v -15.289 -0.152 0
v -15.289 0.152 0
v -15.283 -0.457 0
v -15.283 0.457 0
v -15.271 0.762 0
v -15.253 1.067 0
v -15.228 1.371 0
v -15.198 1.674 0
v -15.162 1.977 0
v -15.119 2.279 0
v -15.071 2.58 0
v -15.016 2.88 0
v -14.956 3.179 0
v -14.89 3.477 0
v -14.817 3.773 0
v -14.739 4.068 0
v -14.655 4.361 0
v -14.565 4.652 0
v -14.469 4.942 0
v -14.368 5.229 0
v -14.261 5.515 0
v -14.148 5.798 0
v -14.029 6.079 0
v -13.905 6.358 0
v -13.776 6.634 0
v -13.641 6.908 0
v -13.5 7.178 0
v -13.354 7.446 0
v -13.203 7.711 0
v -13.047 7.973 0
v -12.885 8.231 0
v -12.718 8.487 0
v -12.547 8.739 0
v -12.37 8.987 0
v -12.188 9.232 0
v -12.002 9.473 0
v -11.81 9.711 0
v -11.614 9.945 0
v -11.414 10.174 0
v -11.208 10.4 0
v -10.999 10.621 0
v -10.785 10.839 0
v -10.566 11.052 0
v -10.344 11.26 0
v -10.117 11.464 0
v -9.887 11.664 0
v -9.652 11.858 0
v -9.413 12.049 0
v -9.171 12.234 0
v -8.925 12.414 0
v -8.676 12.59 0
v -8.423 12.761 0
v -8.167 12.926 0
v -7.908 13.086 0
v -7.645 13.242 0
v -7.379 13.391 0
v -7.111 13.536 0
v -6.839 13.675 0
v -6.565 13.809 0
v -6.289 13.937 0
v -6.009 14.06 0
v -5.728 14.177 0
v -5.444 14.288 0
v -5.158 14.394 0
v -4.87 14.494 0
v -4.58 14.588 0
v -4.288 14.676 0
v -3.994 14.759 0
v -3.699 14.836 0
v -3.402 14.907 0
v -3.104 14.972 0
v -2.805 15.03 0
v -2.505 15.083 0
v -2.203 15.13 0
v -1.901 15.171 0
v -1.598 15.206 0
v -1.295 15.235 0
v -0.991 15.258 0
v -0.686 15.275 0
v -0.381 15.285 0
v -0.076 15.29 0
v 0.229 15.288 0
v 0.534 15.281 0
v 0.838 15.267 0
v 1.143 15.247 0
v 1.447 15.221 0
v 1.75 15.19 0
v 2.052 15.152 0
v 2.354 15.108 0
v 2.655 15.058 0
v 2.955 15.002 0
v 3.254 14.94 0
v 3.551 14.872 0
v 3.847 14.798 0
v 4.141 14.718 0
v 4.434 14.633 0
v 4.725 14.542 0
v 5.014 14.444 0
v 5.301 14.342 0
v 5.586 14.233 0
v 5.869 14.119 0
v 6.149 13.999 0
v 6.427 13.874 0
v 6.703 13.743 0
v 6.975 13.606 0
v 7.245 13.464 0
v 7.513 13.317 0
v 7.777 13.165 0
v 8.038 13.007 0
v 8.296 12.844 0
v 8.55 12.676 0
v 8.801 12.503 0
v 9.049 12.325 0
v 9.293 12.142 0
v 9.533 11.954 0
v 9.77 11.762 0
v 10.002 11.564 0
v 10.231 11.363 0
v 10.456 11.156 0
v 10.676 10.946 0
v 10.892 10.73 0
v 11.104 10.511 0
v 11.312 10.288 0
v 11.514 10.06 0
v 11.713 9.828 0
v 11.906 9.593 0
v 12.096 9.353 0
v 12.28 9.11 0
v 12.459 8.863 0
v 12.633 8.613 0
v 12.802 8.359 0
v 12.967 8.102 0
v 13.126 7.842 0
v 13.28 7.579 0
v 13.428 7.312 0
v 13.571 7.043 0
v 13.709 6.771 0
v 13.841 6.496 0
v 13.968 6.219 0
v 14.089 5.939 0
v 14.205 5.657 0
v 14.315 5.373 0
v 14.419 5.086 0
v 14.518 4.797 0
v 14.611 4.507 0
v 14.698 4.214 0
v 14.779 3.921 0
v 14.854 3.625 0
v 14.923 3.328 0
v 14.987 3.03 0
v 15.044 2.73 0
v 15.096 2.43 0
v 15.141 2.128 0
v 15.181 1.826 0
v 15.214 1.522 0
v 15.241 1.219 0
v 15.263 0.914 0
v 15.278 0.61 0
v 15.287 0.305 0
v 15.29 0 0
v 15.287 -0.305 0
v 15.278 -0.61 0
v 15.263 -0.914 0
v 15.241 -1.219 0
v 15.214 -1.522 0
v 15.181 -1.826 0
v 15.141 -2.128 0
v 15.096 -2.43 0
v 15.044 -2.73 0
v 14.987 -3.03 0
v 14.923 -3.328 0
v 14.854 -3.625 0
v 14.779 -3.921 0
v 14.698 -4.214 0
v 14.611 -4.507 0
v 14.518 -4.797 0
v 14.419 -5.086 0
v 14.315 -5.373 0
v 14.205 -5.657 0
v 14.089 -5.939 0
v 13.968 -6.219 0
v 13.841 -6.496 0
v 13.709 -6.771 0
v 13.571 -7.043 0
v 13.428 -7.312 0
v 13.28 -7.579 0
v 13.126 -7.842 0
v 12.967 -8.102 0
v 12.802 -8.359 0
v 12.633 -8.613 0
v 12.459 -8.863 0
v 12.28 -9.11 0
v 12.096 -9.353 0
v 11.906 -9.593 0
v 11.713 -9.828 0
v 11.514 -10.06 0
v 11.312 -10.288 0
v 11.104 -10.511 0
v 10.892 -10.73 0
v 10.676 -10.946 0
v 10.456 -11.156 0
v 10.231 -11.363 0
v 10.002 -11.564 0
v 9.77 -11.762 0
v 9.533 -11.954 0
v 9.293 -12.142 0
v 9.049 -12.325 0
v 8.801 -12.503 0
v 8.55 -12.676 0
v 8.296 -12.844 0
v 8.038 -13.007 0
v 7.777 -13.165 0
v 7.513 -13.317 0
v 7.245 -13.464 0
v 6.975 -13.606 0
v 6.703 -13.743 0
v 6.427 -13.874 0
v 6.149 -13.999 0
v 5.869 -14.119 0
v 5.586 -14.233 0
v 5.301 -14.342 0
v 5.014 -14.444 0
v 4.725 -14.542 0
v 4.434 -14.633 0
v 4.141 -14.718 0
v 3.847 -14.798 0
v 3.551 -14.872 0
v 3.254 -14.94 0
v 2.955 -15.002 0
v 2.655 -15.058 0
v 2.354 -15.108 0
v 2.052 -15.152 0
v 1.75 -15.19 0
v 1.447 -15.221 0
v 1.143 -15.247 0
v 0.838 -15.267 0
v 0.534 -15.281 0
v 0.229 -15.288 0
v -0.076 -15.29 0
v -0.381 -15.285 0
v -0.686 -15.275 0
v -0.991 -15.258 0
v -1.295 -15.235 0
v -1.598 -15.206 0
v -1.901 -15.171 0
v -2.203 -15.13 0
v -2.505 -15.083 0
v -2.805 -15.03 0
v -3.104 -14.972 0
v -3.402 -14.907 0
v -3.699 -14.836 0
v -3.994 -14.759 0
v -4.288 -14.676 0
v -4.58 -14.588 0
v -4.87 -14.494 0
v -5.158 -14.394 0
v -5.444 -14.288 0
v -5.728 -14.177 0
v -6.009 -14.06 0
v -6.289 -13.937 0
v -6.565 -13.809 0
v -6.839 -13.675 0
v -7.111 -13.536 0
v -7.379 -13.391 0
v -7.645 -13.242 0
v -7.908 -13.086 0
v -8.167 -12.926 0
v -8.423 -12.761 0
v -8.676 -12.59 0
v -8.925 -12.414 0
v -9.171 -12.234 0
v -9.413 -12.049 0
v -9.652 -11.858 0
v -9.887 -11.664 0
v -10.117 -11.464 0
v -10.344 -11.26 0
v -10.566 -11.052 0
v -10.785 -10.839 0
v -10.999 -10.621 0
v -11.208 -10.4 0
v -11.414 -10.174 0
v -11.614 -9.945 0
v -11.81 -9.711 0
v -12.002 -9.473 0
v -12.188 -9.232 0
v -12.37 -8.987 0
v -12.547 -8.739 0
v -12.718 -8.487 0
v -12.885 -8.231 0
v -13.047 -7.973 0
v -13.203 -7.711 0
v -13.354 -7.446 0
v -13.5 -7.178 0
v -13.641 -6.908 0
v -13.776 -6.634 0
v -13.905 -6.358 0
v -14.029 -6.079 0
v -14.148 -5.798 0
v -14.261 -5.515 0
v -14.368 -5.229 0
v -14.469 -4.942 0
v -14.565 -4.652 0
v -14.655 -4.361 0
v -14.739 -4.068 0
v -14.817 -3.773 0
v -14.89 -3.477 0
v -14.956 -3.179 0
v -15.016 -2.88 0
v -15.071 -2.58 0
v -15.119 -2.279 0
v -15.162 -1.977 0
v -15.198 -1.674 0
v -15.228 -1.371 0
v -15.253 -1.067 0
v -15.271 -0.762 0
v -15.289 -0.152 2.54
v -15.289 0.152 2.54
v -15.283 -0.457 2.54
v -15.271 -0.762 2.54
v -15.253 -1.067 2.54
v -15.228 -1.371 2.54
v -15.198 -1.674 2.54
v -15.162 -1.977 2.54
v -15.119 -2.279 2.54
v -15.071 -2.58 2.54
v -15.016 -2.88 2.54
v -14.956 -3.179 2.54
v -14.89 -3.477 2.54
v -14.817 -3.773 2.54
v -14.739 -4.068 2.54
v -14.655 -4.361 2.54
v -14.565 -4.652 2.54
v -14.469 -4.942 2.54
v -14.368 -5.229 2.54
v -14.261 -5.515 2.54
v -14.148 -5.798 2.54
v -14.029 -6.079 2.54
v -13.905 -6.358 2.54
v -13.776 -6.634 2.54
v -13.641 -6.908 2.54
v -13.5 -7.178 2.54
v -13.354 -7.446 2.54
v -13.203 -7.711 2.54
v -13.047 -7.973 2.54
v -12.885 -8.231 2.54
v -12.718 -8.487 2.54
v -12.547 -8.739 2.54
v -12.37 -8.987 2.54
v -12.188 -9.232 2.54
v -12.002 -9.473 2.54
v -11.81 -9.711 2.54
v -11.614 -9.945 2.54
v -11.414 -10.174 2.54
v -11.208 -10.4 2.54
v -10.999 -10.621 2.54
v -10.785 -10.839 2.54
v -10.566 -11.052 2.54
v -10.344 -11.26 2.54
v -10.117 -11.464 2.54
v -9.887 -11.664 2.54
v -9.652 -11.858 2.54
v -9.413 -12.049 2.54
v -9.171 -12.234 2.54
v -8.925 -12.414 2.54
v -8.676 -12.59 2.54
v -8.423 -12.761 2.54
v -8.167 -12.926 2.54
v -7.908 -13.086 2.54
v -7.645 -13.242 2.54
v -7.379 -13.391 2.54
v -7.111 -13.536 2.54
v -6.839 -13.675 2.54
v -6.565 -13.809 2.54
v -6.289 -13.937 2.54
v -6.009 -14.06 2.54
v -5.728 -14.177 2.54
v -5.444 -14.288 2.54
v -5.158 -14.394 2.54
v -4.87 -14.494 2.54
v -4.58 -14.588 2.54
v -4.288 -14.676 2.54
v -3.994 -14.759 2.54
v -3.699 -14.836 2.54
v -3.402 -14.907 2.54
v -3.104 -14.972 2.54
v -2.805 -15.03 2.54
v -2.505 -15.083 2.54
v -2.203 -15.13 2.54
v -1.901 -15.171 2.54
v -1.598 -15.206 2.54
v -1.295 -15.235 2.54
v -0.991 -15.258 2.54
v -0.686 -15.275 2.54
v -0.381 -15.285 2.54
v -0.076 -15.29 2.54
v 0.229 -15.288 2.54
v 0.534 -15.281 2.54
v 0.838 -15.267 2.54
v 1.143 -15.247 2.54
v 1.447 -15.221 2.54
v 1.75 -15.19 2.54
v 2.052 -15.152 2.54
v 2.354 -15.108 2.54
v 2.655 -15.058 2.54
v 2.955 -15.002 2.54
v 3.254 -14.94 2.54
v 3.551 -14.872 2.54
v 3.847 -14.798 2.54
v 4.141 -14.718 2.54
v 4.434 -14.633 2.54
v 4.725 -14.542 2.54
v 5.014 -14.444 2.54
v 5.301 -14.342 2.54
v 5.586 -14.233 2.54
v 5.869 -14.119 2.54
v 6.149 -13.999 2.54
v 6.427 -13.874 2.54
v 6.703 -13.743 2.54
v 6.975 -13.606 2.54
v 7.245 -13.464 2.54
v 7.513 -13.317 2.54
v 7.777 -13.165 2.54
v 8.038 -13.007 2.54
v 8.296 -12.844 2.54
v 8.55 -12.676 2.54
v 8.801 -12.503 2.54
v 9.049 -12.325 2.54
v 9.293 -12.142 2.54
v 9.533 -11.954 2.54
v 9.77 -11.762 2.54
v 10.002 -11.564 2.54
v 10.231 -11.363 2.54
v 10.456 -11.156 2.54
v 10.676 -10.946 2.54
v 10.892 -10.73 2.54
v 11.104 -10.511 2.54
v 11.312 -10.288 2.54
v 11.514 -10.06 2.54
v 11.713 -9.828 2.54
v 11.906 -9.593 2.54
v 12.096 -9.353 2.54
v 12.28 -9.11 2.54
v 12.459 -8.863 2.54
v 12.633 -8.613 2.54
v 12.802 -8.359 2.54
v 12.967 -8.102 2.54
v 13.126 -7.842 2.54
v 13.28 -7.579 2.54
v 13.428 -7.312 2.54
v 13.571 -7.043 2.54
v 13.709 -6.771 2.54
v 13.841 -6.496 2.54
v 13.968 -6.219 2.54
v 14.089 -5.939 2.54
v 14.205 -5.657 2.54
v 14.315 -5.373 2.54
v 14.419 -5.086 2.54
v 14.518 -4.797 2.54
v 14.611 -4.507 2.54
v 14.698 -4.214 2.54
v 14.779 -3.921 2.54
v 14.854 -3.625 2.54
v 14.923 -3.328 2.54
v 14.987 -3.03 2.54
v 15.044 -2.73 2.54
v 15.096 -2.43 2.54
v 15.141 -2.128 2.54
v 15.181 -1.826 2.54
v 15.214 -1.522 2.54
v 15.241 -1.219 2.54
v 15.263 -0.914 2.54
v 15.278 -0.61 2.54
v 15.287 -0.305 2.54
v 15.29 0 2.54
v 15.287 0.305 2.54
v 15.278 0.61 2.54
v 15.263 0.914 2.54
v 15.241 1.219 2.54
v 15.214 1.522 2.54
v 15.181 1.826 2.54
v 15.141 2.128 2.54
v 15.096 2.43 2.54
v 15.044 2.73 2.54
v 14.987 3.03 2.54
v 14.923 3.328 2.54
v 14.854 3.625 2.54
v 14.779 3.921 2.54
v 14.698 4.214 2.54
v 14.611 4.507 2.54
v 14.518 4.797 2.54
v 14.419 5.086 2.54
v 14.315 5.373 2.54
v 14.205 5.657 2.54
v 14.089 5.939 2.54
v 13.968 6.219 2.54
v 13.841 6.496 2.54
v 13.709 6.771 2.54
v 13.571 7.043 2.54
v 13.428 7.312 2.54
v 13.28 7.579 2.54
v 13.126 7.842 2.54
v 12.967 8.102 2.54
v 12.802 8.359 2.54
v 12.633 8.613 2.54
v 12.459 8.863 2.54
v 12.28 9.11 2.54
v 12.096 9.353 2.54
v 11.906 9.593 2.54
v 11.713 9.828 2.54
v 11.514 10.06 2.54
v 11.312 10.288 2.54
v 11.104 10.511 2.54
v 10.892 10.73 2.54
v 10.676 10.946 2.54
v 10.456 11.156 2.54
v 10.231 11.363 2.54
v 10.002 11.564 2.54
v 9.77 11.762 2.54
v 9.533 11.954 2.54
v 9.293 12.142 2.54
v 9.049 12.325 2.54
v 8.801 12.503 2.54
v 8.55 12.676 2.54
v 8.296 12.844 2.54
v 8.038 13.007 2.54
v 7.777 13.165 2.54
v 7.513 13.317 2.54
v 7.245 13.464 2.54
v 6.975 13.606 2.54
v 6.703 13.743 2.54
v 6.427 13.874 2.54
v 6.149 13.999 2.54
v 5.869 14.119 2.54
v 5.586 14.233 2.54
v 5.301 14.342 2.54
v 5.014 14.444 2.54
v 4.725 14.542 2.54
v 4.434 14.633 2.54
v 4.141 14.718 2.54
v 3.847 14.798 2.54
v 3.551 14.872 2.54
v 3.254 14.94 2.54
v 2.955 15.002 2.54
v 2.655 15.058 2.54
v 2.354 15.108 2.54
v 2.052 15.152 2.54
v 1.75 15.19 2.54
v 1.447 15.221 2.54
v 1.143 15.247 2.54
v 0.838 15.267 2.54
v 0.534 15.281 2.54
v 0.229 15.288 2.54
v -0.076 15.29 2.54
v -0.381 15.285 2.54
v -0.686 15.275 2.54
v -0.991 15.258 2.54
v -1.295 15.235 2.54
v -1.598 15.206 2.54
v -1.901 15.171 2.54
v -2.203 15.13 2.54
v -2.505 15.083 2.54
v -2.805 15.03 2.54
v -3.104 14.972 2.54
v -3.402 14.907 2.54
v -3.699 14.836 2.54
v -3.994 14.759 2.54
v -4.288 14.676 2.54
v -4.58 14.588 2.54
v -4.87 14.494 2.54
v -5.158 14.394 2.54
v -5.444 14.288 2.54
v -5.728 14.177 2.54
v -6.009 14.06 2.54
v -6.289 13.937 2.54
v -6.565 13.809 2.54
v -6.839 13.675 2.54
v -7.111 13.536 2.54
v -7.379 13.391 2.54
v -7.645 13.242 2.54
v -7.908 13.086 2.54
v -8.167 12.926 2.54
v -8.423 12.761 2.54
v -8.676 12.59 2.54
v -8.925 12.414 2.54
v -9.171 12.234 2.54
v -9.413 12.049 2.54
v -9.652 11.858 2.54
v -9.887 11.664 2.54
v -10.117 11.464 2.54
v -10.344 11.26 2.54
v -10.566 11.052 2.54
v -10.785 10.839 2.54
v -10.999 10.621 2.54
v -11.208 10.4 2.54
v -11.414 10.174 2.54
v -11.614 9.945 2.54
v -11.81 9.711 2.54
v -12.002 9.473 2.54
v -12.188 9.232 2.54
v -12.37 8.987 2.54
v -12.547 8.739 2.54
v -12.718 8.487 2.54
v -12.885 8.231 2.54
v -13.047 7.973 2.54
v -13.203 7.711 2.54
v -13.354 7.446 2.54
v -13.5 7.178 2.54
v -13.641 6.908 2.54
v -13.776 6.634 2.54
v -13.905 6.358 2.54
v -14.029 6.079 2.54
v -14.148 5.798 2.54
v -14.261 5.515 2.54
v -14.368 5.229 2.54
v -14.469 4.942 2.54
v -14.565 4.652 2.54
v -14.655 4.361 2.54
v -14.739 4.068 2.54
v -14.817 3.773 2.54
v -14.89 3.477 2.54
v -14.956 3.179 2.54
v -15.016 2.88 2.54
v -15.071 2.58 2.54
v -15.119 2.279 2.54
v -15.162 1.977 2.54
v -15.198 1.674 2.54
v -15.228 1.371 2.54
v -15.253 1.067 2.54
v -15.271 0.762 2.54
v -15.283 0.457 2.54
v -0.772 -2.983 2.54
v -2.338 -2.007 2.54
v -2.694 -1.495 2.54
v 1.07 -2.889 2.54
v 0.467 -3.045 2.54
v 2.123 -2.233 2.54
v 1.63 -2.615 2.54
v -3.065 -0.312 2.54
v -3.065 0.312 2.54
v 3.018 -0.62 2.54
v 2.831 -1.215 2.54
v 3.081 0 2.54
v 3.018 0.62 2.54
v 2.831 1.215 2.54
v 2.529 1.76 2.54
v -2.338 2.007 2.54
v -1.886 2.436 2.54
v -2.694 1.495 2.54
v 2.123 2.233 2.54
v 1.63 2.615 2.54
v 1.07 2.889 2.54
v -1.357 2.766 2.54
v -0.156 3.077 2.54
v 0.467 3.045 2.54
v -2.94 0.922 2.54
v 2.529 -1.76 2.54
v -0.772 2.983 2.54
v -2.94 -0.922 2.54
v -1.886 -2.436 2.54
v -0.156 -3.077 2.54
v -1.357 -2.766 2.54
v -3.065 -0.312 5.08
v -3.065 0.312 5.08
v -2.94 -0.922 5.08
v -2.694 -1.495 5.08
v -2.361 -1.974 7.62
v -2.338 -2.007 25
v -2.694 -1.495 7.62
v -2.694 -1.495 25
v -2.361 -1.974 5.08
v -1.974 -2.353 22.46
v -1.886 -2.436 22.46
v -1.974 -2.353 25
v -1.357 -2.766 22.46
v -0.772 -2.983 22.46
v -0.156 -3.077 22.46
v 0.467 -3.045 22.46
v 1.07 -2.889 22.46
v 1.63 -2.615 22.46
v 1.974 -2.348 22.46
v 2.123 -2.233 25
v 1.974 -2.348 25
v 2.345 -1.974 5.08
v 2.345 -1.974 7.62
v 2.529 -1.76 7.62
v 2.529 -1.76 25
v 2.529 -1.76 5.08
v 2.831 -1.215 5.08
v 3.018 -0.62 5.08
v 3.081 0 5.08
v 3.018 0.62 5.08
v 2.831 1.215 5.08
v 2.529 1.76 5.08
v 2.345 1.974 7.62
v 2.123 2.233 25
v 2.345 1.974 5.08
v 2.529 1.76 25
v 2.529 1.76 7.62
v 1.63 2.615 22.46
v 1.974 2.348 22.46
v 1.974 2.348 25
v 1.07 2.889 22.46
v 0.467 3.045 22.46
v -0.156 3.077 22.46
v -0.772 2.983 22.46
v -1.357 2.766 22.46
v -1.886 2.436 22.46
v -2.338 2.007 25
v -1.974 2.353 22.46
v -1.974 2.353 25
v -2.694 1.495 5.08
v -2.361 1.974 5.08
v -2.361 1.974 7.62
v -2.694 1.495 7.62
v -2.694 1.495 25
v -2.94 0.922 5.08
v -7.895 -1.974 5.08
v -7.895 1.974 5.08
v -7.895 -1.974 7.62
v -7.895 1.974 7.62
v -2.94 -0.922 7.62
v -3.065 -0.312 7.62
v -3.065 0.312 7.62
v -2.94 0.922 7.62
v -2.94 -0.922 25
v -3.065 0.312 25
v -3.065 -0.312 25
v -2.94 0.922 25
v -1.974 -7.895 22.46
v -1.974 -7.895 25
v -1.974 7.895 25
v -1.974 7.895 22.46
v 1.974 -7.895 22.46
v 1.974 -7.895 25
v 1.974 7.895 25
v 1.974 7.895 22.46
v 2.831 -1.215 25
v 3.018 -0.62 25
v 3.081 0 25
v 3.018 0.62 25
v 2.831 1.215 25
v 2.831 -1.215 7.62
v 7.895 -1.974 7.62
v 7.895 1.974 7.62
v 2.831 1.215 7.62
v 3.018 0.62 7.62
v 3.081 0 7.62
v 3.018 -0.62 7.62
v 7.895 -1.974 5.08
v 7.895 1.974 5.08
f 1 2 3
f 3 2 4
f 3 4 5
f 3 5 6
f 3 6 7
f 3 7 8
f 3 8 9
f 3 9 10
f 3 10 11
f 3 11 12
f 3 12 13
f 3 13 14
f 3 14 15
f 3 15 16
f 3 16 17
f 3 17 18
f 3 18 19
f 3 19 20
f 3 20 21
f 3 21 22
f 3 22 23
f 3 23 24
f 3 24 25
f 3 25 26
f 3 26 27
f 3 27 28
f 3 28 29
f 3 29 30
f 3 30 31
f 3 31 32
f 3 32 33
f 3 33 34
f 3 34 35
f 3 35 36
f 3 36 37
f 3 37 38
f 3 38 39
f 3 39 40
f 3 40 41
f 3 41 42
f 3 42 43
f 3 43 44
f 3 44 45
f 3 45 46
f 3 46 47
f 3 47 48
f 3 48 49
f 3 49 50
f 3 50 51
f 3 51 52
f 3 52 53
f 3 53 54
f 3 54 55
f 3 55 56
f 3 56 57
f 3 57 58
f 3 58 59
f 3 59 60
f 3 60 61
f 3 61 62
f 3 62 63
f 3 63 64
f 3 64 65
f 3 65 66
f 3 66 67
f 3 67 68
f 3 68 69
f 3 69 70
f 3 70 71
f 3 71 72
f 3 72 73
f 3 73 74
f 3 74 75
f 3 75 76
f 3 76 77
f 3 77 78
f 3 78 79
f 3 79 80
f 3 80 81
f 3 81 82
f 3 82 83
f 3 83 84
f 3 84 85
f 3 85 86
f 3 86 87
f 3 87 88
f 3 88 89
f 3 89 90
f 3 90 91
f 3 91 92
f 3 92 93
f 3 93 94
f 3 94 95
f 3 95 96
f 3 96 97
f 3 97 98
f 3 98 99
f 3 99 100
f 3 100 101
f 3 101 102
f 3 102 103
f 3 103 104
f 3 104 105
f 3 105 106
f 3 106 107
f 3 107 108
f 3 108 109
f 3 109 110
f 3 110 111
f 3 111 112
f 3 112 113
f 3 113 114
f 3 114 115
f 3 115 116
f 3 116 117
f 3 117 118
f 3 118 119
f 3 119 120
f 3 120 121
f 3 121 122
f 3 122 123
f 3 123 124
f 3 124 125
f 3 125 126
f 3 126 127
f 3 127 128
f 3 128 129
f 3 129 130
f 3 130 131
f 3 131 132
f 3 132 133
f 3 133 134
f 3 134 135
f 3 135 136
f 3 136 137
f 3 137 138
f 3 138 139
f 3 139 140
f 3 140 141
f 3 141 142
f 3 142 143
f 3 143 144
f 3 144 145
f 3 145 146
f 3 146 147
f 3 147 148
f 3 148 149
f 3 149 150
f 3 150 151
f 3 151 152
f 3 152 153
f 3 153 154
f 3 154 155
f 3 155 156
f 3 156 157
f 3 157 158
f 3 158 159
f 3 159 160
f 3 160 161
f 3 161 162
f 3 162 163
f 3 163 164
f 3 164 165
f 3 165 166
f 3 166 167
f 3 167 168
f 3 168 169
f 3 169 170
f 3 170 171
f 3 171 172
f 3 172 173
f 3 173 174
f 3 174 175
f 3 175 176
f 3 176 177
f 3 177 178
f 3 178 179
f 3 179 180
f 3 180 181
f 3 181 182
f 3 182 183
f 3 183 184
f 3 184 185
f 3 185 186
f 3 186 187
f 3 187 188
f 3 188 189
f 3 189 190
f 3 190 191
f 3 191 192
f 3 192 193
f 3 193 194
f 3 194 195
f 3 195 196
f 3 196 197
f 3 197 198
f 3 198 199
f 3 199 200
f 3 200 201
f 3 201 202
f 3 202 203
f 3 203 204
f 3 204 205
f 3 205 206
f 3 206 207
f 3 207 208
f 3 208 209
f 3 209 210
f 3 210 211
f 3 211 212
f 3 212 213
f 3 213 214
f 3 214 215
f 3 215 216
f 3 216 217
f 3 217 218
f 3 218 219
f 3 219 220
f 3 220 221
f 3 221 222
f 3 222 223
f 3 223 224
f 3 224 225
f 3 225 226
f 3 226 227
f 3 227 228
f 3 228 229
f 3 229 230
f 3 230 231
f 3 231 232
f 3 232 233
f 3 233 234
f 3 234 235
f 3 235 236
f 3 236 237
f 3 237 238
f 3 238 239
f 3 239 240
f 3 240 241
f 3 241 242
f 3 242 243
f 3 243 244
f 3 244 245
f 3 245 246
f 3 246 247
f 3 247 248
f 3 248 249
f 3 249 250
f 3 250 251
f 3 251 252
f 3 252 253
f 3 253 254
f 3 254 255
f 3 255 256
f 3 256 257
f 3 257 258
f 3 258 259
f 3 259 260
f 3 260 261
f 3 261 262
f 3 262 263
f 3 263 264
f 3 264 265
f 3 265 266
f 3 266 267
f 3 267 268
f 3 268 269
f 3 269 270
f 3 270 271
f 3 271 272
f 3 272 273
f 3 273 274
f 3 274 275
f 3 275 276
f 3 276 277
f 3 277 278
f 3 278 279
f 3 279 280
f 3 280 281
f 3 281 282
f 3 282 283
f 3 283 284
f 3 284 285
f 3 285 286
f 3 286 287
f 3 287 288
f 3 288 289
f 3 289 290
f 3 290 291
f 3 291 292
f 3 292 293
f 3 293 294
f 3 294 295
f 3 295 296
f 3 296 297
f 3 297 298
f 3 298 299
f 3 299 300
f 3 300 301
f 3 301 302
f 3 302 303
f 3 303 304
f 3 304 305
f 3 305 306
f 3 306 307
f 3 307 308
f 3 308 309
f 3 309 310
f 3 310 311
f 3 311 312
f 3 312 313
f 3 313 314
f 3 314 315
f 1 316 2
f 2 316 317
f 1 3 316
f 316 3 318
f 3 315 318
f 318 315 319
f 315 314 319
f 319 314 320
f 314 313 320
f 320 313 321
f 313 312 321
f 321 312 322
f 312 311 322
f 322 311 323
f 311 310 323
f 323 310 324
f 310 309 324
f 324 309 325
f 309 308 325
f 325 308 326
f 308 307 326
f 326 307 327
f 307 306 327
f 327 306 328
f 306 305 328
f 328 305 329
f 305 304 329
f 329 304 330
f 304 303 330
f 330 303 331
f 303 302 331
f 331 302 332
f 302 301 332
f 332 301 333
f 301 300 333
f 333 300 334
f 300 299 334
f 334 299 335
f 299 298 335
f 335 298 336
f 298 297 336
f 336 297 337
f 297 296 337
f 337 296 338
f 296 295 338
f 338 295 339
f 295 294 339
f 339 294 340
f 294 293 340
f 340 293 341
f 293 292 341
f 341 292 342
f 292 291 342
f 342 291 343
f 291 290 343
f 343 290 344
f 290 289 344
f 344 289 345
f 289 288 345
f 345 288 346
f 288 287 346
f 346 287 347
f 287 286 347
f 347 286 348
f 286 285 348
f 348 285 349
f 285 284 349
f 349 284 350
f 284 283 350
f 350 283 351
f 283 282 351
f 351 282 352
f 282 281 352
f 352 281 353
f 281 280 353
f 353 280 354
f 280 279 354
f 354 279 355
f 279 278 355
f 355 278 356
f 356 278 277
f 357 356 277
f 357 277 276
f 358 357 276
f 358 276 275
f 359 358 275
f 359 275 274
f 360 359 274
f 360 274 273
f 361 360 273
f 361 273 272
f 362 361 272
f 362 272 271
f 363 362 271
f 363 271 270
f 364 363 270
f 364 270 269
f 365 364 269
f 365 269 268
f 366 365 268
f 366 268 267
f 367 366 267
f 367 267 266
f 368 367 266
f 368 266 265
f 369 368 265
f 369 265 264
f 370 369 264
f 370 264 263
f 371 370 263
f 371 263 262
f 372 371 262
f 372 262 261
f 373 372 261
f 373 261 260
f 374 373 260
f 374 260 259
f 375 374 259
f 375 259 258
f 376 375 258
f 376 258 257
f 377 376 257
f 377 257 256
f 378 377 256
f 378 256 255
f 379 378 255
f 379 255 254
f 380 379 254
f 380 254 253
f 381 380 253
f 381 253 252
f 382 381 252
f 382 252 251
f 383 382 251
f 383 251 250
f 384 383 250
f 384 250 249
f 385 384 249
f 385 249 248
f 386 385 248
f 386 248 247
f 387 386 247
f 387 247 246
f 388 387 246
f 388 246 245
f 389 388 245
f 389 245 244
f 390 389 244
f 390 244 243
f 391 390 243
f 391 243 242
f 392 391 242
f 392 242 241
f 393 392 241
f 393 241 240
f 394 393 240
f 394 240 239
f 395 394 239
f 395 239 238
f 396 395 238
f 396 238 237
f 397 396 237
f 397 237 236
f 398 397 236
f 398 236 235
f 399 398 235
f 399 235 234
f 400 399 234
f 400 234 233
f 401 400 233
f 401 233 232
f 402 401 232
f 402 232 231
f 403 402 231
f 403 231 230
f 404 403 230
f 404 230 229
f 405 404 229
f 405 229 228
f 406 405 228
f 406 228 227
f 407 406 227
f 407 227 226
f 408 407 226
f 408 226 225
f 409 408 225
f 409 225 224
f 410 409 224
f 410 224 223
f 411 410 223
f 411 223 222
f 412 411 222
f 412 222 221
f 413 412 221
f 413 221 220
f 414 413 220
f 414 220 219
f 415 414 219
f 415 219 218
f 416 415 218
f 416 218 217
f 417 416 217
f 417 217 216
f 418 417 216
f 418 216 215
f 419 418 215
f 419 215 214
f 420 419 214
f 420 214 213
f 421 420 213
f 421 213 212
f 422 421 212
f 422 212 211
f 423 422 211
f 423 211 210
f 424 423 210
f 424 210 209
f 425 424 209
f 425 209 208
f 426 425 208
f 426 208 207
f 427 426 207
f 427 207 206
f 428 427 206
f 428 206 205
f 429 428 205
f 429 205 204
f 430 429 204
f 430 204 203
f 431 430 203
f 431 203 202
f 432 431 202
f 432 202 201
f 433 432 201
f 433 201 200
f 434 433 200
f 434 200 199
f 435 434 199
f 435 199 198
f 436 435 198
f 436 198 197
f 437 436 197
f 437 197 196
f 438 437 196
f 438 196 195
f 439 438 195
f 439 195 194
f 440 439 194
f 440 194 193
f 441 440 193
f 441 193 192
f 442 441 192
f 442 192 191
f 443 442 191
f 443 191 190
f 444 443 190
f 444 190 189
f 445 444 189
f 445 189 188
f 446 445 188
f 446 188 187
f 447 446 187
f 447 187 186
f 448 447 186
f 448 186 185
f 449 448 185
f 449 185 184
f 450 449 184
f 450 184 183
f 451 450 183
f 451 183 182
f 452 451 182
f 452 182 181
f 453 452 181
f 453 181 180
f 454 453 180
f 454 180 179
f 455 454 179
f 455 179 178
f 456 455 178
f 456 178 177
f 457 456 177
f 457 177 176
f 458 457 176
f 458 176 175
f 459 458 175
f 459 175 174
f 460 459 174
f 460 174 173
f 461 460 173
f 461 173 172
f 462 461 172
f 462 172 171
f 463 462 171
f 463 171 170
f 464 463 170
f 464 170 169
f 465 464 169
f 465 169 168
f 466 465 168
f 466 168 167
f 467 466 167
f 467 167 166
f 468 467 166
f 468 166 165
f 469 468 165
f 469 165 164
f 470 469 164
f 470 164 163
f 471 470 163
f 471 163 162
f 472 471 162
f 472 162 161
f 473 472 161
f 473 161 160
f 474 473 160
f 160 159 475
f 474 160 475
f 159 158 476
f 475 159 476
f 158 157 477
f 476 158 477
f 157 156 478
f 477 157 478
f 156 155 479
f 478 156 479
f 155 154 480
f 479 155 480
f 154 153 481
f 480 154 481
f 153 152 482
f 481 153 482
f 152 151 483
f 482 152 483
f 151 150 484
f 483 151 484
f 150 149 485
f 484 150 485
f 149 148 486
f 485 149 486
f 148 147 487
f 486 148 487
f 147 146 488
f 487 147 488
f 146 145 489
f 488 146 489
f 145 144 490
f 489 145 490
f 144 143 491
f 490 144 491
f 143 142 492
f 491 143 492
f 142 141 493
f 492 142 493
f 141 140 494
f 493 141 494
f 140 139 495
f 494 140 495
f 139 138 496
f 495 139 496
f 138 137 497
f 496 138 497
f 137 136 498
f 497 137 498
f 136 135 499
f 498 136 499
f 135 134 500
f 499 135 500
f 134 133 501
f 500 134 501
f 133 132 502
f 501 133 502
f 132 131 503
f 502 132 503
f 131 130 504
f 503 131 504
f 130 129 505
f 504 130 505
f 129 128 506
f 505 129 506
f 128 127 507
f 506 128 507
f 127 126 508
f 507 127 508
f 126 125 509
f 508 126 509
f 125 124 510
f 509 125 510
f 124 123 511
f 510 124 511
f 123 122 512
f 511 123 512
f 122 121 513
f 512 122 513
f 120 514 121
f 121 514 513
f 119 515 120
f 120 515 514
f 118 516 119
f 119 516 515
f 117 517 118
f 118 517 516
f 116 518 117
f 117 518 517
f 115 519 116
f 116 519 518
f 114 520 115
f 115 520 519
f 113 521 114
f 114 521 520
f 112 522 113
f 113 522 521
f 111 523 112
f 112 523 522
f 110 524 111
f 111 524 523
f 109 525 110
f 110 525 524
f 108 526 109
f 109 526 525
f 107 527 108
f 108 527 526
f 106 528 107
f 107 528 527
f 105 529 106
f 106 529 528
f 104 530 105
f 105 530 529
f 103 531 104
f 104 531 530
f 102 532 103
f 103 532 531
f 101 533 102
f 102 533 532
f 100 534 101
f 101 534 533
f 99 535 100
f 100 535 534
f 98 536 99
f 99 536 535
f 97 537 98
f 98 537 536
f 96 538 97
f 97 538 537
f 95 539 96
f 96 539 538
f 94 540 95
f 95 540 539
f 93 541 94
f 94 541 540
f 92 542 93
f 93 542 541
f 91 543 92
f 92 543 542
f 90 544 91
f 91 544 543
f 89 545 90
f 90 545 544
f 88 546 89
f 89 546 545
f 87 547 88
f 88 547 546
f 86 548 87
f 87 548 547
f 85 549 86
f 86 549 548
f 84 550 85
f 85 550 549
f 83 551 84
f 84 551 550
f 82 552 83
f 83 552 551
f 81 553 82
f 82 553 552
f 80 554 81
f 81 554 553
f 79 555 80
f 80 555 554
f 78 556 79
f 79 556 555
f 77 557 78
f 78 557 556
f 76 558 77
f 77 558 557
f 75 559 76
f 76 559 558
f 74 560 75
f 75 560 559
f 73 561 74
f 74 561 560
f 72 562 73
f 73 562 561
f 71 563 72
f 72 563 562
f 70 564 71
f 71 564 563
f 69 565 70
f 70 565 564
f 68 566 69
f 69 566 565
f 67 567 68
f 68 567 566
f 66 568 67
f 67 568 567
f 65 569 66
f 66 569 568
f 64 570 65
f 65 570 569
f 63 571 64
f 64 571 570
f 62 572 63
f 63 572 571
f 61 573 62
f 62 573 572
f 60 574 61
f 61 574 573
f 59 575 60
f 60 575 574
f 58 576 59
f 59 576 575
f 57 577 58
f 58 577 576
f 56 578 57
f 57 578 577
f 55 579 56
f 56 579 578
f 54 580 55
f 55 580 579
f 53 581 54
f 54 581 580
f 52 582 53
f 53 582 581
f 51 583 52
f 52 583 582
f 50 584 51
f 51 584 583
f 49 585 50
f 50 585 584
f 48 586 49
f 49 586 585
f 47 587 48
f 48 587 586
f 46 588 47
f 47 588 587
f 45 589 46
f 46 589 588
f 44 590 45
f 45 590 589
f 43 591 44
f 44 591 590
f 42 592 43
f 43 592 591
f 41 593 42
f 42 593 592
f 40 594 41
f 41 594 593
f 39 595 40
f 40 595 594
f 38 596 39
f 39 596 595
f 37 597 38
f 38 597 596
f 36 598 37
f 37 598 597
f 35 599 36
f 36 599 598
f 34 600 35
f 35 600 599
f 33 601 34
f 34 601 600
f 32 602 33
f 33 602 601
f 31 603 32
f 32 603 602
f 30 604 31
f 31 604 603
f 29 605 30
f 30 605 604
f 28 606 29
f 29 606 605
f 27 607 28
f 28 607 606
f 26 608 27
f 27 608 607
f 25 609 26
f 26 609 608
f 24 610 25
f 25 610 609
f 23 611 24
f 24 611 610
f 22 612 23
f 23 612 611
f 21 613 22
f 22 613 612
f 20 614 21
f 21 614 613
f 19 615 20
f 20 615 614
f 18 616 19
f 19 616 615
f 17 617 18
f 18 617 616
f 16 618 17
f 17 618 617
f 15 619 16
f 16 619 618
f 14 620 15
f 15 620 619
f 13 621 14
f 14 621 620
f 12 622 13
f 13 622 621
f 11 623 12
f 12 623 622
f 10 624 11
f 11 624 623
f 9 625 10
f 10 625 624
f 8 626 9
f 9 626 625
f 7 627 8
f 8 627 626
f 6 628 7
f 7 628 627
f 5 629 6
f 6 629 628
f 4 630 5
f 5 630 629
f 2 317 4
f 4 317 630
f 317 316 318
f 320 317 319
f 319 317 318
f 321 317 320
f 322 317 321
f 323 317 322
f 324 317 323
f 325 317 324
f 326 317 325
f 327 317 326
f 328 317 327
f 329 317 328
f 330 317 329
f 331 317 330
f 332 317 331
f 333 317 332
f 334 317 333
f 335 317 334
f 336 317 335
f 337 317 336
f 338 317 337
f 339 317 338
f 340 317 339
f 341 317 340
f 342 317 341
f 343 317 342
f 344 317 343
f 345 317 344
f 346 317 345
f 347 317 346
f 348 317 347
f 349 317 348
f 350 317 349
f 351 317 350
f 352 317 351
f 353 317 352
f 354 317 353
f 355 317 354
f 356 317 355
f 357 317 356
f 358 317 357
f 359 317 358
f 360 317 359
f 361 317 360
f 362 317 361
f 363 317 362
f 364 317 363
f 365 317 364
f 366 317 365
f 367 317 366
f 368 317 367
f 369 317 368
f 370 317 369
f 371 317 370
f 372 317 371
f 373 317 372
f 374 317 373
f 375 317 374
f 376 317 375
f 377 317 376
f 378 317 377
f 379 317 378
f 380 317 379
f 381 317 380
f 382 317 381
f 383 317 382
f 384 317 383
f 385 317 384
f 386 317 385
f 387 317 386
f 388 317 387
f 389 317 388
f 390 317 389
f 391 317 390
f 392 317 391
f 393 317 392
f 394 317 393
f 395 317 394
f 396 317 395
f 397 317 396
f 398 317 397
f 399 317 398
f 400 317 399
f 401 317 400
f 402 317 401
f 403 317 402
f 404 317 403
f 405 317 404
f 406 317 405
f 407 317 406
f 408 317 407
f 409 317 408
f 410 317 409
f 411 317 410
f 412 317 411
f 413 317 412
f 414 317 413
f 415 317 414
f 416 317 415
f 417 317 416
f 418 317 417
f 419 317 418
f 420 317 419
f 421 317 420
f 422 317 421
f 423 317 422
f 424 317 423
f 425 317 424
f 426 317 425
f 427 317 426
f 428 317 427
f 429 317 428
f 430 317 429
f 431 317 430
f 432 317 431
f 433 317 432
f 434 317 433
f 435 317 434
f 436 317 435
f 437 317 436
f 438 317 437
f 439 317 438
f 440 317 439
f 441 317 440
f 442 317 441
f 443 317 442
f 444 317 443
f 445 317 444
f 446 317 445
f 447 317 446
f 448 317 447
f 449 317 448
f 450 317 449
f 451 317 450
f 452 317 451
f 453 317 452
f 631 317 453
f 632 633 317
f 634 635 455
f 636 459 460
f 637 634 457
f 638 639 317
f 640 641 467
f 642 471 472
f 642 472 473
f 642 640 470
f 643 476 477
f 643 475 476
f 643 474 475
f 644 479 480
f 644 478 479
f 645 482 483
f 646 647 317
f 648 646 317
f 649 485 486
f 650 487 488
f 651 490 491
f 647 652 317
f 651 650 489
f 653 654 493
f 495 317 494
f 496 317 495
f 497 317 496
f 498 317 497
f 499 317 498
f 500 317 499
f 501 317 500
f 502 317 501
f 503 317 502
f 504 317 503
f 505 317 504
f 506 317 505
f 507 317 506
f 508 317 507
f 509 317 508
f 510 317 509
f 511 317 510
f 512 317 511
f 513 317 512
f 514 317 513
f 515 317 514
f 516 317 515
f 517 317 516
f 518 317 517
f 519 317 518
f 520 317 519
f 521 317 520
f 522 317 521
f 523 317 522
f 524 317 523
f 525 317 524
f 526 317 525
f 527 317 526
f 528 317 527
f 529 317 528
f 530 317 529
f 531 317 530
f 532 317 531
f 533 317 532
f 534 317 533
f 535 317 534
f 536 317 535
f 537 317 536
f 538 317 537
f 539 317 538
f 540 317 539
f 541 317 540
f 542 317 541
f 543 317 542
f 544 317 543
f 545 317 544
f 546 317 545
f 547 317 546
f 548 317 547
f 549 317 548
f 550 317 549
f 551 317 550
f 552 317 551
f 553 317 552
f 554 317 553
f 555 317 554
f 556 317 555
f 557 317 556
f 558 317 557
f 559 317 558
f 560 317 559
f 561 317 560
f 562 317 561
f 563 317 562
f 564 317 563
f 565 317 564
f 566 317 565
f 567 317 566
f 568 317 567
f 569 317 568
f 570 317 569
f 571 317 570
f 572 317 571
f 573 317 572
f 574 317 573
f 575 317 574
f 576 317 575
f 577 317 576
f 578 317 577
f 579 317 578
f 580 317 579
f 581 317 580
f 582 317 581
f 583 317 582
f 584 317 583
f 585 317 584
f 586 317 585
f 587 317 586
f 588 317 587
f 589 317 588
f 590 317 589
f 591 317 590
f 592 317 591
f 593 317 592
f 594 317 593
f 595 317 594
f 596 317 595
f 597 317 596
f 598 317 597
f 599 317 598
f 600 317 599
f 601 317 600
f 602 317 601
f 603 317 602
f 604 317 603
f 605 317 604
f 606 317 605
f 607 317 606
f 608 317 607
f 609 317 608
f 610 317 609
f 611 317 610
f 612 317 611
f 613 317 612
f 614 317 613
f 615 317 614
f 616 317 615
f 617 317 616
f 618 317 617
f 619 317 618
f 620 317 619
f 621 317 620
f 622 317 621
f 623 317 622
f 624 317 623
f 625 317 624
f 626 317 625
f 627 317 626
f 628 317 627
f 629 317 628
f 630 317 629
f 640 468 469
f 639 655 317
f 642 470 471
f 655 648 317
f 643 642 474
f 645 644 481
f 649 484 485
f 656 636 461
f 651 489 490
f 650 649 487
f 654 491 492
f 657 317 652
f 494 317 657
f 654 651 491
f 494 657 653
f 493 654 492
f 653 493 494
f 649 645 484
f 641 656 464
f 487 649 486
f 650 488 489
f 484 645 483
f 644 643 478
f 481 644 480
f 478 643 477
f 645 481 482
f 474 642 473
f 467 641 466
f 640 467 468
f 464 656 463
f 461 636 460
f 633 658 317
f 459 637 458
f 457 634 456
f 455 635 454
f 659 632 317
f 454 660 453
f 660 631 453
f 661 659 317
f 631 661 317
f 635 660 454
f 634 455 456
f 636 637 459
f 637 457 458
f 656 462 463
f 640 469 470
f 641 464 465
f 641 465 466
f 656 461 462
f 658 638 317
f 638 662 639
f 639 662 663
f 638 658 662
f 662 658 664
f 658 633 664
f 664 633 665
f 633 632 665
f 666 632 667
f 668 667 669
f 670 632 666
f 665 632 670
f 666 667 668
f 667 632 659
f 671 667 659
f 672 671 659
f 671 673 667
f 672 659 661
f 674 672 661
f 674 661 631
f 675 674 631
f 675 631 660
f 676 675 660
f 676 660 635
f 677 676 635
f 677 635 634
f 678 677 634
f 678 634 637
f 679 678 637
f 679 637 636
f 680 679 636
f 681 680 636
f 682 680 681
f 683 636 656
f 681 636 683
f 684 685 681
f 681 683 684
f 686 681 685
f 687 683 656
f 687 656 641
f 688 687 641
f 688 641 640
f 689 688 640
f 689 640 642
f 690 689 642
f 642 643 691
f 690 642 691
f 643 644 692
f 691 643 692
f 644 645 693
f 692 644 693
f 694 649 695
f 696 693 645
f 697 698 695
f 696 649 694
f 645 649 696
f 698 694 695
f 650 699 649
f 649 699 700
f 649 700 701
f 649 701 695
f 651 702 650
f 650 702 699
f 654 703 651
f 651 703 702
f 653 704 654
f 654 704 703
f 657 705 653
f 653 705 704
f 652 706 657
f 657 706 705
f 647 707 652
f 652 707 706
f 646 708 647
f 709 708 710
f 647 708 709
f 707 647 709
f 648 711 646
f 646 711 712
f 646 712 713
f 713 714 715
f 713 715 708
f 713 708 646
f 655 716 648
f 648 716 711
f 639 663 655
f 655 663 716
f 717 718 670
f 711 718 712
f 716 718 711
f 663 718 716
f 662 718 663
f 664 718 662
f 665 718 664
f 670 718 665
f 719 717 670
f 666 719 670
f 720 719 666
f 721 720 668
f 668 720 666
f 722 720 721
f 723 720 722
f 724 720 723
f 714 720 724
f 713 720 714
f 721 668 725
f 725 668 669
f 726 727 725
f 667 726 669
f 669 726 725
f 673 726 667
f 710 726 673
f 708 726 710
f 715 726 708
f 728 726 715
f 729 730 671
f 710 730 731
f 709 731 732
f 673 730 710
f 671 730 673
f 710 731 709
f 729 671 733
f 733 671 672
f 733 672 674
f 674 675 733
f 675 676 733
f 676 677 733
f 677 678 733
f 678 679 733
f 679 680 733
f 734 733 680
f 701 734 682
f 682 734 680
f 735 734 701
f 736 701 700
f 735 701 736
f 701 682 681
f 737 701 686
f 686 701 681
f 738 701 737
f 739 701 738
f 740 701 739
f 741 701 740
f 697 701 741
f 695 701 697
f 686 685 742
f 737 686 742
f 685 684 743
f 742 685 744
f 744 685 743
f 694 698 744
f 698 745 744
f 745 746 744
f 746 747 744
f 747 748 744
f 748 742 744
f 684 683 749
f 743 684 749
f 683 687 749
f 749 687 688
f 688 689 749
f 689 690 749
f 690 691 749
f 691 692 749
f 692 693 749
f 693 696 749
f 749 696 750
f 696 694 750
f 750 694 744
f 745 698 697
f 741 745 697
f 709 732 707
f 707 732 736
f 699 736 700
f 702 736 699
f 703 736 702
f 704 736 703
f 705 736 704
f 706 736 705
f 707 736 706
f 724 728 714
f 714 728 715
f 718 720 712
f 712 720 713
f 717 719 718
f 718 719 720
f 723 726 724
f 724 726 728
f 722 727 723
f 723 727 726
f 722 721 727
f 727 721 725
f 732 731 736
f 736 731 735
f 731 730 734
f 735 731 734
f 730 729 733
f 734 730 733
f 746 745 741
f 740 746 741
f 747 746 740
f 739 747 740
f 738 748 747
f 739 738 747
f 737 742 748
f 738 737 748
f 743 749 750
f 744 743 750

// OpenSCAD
cap_diameter = 31.58;
cap_thickness = 2.54;
drain_hole_diameter = 4;
key_height = 25;

union(){

	// main body
	cylinder(r=cap_diameter/2-.5, h=cap_thickness,$fn=cap_diameter*10);

	// center shaft
	translate([0,0,0]){
		cylinder(r=cap_diameter/10.25,h=key_height,$fn=(cap_diameter*10)/10);
	}

	// lower key
	translate([-cap_diameter/4,-(cap_diameter/8)/2,cap_thickness*2]){
		cube([cap_diameter/2,cap_diameter/8,cap_thickness]);
	}

	// upper key
	rotate([0,0,90]){
		translate([-cap_diameter/4,-(cap_diameter/8)/2,key_height-cap_thickness]){
			cube([cap_diameter/2,cap_diameter/8,cap_thickness]);
		}
	}

}
